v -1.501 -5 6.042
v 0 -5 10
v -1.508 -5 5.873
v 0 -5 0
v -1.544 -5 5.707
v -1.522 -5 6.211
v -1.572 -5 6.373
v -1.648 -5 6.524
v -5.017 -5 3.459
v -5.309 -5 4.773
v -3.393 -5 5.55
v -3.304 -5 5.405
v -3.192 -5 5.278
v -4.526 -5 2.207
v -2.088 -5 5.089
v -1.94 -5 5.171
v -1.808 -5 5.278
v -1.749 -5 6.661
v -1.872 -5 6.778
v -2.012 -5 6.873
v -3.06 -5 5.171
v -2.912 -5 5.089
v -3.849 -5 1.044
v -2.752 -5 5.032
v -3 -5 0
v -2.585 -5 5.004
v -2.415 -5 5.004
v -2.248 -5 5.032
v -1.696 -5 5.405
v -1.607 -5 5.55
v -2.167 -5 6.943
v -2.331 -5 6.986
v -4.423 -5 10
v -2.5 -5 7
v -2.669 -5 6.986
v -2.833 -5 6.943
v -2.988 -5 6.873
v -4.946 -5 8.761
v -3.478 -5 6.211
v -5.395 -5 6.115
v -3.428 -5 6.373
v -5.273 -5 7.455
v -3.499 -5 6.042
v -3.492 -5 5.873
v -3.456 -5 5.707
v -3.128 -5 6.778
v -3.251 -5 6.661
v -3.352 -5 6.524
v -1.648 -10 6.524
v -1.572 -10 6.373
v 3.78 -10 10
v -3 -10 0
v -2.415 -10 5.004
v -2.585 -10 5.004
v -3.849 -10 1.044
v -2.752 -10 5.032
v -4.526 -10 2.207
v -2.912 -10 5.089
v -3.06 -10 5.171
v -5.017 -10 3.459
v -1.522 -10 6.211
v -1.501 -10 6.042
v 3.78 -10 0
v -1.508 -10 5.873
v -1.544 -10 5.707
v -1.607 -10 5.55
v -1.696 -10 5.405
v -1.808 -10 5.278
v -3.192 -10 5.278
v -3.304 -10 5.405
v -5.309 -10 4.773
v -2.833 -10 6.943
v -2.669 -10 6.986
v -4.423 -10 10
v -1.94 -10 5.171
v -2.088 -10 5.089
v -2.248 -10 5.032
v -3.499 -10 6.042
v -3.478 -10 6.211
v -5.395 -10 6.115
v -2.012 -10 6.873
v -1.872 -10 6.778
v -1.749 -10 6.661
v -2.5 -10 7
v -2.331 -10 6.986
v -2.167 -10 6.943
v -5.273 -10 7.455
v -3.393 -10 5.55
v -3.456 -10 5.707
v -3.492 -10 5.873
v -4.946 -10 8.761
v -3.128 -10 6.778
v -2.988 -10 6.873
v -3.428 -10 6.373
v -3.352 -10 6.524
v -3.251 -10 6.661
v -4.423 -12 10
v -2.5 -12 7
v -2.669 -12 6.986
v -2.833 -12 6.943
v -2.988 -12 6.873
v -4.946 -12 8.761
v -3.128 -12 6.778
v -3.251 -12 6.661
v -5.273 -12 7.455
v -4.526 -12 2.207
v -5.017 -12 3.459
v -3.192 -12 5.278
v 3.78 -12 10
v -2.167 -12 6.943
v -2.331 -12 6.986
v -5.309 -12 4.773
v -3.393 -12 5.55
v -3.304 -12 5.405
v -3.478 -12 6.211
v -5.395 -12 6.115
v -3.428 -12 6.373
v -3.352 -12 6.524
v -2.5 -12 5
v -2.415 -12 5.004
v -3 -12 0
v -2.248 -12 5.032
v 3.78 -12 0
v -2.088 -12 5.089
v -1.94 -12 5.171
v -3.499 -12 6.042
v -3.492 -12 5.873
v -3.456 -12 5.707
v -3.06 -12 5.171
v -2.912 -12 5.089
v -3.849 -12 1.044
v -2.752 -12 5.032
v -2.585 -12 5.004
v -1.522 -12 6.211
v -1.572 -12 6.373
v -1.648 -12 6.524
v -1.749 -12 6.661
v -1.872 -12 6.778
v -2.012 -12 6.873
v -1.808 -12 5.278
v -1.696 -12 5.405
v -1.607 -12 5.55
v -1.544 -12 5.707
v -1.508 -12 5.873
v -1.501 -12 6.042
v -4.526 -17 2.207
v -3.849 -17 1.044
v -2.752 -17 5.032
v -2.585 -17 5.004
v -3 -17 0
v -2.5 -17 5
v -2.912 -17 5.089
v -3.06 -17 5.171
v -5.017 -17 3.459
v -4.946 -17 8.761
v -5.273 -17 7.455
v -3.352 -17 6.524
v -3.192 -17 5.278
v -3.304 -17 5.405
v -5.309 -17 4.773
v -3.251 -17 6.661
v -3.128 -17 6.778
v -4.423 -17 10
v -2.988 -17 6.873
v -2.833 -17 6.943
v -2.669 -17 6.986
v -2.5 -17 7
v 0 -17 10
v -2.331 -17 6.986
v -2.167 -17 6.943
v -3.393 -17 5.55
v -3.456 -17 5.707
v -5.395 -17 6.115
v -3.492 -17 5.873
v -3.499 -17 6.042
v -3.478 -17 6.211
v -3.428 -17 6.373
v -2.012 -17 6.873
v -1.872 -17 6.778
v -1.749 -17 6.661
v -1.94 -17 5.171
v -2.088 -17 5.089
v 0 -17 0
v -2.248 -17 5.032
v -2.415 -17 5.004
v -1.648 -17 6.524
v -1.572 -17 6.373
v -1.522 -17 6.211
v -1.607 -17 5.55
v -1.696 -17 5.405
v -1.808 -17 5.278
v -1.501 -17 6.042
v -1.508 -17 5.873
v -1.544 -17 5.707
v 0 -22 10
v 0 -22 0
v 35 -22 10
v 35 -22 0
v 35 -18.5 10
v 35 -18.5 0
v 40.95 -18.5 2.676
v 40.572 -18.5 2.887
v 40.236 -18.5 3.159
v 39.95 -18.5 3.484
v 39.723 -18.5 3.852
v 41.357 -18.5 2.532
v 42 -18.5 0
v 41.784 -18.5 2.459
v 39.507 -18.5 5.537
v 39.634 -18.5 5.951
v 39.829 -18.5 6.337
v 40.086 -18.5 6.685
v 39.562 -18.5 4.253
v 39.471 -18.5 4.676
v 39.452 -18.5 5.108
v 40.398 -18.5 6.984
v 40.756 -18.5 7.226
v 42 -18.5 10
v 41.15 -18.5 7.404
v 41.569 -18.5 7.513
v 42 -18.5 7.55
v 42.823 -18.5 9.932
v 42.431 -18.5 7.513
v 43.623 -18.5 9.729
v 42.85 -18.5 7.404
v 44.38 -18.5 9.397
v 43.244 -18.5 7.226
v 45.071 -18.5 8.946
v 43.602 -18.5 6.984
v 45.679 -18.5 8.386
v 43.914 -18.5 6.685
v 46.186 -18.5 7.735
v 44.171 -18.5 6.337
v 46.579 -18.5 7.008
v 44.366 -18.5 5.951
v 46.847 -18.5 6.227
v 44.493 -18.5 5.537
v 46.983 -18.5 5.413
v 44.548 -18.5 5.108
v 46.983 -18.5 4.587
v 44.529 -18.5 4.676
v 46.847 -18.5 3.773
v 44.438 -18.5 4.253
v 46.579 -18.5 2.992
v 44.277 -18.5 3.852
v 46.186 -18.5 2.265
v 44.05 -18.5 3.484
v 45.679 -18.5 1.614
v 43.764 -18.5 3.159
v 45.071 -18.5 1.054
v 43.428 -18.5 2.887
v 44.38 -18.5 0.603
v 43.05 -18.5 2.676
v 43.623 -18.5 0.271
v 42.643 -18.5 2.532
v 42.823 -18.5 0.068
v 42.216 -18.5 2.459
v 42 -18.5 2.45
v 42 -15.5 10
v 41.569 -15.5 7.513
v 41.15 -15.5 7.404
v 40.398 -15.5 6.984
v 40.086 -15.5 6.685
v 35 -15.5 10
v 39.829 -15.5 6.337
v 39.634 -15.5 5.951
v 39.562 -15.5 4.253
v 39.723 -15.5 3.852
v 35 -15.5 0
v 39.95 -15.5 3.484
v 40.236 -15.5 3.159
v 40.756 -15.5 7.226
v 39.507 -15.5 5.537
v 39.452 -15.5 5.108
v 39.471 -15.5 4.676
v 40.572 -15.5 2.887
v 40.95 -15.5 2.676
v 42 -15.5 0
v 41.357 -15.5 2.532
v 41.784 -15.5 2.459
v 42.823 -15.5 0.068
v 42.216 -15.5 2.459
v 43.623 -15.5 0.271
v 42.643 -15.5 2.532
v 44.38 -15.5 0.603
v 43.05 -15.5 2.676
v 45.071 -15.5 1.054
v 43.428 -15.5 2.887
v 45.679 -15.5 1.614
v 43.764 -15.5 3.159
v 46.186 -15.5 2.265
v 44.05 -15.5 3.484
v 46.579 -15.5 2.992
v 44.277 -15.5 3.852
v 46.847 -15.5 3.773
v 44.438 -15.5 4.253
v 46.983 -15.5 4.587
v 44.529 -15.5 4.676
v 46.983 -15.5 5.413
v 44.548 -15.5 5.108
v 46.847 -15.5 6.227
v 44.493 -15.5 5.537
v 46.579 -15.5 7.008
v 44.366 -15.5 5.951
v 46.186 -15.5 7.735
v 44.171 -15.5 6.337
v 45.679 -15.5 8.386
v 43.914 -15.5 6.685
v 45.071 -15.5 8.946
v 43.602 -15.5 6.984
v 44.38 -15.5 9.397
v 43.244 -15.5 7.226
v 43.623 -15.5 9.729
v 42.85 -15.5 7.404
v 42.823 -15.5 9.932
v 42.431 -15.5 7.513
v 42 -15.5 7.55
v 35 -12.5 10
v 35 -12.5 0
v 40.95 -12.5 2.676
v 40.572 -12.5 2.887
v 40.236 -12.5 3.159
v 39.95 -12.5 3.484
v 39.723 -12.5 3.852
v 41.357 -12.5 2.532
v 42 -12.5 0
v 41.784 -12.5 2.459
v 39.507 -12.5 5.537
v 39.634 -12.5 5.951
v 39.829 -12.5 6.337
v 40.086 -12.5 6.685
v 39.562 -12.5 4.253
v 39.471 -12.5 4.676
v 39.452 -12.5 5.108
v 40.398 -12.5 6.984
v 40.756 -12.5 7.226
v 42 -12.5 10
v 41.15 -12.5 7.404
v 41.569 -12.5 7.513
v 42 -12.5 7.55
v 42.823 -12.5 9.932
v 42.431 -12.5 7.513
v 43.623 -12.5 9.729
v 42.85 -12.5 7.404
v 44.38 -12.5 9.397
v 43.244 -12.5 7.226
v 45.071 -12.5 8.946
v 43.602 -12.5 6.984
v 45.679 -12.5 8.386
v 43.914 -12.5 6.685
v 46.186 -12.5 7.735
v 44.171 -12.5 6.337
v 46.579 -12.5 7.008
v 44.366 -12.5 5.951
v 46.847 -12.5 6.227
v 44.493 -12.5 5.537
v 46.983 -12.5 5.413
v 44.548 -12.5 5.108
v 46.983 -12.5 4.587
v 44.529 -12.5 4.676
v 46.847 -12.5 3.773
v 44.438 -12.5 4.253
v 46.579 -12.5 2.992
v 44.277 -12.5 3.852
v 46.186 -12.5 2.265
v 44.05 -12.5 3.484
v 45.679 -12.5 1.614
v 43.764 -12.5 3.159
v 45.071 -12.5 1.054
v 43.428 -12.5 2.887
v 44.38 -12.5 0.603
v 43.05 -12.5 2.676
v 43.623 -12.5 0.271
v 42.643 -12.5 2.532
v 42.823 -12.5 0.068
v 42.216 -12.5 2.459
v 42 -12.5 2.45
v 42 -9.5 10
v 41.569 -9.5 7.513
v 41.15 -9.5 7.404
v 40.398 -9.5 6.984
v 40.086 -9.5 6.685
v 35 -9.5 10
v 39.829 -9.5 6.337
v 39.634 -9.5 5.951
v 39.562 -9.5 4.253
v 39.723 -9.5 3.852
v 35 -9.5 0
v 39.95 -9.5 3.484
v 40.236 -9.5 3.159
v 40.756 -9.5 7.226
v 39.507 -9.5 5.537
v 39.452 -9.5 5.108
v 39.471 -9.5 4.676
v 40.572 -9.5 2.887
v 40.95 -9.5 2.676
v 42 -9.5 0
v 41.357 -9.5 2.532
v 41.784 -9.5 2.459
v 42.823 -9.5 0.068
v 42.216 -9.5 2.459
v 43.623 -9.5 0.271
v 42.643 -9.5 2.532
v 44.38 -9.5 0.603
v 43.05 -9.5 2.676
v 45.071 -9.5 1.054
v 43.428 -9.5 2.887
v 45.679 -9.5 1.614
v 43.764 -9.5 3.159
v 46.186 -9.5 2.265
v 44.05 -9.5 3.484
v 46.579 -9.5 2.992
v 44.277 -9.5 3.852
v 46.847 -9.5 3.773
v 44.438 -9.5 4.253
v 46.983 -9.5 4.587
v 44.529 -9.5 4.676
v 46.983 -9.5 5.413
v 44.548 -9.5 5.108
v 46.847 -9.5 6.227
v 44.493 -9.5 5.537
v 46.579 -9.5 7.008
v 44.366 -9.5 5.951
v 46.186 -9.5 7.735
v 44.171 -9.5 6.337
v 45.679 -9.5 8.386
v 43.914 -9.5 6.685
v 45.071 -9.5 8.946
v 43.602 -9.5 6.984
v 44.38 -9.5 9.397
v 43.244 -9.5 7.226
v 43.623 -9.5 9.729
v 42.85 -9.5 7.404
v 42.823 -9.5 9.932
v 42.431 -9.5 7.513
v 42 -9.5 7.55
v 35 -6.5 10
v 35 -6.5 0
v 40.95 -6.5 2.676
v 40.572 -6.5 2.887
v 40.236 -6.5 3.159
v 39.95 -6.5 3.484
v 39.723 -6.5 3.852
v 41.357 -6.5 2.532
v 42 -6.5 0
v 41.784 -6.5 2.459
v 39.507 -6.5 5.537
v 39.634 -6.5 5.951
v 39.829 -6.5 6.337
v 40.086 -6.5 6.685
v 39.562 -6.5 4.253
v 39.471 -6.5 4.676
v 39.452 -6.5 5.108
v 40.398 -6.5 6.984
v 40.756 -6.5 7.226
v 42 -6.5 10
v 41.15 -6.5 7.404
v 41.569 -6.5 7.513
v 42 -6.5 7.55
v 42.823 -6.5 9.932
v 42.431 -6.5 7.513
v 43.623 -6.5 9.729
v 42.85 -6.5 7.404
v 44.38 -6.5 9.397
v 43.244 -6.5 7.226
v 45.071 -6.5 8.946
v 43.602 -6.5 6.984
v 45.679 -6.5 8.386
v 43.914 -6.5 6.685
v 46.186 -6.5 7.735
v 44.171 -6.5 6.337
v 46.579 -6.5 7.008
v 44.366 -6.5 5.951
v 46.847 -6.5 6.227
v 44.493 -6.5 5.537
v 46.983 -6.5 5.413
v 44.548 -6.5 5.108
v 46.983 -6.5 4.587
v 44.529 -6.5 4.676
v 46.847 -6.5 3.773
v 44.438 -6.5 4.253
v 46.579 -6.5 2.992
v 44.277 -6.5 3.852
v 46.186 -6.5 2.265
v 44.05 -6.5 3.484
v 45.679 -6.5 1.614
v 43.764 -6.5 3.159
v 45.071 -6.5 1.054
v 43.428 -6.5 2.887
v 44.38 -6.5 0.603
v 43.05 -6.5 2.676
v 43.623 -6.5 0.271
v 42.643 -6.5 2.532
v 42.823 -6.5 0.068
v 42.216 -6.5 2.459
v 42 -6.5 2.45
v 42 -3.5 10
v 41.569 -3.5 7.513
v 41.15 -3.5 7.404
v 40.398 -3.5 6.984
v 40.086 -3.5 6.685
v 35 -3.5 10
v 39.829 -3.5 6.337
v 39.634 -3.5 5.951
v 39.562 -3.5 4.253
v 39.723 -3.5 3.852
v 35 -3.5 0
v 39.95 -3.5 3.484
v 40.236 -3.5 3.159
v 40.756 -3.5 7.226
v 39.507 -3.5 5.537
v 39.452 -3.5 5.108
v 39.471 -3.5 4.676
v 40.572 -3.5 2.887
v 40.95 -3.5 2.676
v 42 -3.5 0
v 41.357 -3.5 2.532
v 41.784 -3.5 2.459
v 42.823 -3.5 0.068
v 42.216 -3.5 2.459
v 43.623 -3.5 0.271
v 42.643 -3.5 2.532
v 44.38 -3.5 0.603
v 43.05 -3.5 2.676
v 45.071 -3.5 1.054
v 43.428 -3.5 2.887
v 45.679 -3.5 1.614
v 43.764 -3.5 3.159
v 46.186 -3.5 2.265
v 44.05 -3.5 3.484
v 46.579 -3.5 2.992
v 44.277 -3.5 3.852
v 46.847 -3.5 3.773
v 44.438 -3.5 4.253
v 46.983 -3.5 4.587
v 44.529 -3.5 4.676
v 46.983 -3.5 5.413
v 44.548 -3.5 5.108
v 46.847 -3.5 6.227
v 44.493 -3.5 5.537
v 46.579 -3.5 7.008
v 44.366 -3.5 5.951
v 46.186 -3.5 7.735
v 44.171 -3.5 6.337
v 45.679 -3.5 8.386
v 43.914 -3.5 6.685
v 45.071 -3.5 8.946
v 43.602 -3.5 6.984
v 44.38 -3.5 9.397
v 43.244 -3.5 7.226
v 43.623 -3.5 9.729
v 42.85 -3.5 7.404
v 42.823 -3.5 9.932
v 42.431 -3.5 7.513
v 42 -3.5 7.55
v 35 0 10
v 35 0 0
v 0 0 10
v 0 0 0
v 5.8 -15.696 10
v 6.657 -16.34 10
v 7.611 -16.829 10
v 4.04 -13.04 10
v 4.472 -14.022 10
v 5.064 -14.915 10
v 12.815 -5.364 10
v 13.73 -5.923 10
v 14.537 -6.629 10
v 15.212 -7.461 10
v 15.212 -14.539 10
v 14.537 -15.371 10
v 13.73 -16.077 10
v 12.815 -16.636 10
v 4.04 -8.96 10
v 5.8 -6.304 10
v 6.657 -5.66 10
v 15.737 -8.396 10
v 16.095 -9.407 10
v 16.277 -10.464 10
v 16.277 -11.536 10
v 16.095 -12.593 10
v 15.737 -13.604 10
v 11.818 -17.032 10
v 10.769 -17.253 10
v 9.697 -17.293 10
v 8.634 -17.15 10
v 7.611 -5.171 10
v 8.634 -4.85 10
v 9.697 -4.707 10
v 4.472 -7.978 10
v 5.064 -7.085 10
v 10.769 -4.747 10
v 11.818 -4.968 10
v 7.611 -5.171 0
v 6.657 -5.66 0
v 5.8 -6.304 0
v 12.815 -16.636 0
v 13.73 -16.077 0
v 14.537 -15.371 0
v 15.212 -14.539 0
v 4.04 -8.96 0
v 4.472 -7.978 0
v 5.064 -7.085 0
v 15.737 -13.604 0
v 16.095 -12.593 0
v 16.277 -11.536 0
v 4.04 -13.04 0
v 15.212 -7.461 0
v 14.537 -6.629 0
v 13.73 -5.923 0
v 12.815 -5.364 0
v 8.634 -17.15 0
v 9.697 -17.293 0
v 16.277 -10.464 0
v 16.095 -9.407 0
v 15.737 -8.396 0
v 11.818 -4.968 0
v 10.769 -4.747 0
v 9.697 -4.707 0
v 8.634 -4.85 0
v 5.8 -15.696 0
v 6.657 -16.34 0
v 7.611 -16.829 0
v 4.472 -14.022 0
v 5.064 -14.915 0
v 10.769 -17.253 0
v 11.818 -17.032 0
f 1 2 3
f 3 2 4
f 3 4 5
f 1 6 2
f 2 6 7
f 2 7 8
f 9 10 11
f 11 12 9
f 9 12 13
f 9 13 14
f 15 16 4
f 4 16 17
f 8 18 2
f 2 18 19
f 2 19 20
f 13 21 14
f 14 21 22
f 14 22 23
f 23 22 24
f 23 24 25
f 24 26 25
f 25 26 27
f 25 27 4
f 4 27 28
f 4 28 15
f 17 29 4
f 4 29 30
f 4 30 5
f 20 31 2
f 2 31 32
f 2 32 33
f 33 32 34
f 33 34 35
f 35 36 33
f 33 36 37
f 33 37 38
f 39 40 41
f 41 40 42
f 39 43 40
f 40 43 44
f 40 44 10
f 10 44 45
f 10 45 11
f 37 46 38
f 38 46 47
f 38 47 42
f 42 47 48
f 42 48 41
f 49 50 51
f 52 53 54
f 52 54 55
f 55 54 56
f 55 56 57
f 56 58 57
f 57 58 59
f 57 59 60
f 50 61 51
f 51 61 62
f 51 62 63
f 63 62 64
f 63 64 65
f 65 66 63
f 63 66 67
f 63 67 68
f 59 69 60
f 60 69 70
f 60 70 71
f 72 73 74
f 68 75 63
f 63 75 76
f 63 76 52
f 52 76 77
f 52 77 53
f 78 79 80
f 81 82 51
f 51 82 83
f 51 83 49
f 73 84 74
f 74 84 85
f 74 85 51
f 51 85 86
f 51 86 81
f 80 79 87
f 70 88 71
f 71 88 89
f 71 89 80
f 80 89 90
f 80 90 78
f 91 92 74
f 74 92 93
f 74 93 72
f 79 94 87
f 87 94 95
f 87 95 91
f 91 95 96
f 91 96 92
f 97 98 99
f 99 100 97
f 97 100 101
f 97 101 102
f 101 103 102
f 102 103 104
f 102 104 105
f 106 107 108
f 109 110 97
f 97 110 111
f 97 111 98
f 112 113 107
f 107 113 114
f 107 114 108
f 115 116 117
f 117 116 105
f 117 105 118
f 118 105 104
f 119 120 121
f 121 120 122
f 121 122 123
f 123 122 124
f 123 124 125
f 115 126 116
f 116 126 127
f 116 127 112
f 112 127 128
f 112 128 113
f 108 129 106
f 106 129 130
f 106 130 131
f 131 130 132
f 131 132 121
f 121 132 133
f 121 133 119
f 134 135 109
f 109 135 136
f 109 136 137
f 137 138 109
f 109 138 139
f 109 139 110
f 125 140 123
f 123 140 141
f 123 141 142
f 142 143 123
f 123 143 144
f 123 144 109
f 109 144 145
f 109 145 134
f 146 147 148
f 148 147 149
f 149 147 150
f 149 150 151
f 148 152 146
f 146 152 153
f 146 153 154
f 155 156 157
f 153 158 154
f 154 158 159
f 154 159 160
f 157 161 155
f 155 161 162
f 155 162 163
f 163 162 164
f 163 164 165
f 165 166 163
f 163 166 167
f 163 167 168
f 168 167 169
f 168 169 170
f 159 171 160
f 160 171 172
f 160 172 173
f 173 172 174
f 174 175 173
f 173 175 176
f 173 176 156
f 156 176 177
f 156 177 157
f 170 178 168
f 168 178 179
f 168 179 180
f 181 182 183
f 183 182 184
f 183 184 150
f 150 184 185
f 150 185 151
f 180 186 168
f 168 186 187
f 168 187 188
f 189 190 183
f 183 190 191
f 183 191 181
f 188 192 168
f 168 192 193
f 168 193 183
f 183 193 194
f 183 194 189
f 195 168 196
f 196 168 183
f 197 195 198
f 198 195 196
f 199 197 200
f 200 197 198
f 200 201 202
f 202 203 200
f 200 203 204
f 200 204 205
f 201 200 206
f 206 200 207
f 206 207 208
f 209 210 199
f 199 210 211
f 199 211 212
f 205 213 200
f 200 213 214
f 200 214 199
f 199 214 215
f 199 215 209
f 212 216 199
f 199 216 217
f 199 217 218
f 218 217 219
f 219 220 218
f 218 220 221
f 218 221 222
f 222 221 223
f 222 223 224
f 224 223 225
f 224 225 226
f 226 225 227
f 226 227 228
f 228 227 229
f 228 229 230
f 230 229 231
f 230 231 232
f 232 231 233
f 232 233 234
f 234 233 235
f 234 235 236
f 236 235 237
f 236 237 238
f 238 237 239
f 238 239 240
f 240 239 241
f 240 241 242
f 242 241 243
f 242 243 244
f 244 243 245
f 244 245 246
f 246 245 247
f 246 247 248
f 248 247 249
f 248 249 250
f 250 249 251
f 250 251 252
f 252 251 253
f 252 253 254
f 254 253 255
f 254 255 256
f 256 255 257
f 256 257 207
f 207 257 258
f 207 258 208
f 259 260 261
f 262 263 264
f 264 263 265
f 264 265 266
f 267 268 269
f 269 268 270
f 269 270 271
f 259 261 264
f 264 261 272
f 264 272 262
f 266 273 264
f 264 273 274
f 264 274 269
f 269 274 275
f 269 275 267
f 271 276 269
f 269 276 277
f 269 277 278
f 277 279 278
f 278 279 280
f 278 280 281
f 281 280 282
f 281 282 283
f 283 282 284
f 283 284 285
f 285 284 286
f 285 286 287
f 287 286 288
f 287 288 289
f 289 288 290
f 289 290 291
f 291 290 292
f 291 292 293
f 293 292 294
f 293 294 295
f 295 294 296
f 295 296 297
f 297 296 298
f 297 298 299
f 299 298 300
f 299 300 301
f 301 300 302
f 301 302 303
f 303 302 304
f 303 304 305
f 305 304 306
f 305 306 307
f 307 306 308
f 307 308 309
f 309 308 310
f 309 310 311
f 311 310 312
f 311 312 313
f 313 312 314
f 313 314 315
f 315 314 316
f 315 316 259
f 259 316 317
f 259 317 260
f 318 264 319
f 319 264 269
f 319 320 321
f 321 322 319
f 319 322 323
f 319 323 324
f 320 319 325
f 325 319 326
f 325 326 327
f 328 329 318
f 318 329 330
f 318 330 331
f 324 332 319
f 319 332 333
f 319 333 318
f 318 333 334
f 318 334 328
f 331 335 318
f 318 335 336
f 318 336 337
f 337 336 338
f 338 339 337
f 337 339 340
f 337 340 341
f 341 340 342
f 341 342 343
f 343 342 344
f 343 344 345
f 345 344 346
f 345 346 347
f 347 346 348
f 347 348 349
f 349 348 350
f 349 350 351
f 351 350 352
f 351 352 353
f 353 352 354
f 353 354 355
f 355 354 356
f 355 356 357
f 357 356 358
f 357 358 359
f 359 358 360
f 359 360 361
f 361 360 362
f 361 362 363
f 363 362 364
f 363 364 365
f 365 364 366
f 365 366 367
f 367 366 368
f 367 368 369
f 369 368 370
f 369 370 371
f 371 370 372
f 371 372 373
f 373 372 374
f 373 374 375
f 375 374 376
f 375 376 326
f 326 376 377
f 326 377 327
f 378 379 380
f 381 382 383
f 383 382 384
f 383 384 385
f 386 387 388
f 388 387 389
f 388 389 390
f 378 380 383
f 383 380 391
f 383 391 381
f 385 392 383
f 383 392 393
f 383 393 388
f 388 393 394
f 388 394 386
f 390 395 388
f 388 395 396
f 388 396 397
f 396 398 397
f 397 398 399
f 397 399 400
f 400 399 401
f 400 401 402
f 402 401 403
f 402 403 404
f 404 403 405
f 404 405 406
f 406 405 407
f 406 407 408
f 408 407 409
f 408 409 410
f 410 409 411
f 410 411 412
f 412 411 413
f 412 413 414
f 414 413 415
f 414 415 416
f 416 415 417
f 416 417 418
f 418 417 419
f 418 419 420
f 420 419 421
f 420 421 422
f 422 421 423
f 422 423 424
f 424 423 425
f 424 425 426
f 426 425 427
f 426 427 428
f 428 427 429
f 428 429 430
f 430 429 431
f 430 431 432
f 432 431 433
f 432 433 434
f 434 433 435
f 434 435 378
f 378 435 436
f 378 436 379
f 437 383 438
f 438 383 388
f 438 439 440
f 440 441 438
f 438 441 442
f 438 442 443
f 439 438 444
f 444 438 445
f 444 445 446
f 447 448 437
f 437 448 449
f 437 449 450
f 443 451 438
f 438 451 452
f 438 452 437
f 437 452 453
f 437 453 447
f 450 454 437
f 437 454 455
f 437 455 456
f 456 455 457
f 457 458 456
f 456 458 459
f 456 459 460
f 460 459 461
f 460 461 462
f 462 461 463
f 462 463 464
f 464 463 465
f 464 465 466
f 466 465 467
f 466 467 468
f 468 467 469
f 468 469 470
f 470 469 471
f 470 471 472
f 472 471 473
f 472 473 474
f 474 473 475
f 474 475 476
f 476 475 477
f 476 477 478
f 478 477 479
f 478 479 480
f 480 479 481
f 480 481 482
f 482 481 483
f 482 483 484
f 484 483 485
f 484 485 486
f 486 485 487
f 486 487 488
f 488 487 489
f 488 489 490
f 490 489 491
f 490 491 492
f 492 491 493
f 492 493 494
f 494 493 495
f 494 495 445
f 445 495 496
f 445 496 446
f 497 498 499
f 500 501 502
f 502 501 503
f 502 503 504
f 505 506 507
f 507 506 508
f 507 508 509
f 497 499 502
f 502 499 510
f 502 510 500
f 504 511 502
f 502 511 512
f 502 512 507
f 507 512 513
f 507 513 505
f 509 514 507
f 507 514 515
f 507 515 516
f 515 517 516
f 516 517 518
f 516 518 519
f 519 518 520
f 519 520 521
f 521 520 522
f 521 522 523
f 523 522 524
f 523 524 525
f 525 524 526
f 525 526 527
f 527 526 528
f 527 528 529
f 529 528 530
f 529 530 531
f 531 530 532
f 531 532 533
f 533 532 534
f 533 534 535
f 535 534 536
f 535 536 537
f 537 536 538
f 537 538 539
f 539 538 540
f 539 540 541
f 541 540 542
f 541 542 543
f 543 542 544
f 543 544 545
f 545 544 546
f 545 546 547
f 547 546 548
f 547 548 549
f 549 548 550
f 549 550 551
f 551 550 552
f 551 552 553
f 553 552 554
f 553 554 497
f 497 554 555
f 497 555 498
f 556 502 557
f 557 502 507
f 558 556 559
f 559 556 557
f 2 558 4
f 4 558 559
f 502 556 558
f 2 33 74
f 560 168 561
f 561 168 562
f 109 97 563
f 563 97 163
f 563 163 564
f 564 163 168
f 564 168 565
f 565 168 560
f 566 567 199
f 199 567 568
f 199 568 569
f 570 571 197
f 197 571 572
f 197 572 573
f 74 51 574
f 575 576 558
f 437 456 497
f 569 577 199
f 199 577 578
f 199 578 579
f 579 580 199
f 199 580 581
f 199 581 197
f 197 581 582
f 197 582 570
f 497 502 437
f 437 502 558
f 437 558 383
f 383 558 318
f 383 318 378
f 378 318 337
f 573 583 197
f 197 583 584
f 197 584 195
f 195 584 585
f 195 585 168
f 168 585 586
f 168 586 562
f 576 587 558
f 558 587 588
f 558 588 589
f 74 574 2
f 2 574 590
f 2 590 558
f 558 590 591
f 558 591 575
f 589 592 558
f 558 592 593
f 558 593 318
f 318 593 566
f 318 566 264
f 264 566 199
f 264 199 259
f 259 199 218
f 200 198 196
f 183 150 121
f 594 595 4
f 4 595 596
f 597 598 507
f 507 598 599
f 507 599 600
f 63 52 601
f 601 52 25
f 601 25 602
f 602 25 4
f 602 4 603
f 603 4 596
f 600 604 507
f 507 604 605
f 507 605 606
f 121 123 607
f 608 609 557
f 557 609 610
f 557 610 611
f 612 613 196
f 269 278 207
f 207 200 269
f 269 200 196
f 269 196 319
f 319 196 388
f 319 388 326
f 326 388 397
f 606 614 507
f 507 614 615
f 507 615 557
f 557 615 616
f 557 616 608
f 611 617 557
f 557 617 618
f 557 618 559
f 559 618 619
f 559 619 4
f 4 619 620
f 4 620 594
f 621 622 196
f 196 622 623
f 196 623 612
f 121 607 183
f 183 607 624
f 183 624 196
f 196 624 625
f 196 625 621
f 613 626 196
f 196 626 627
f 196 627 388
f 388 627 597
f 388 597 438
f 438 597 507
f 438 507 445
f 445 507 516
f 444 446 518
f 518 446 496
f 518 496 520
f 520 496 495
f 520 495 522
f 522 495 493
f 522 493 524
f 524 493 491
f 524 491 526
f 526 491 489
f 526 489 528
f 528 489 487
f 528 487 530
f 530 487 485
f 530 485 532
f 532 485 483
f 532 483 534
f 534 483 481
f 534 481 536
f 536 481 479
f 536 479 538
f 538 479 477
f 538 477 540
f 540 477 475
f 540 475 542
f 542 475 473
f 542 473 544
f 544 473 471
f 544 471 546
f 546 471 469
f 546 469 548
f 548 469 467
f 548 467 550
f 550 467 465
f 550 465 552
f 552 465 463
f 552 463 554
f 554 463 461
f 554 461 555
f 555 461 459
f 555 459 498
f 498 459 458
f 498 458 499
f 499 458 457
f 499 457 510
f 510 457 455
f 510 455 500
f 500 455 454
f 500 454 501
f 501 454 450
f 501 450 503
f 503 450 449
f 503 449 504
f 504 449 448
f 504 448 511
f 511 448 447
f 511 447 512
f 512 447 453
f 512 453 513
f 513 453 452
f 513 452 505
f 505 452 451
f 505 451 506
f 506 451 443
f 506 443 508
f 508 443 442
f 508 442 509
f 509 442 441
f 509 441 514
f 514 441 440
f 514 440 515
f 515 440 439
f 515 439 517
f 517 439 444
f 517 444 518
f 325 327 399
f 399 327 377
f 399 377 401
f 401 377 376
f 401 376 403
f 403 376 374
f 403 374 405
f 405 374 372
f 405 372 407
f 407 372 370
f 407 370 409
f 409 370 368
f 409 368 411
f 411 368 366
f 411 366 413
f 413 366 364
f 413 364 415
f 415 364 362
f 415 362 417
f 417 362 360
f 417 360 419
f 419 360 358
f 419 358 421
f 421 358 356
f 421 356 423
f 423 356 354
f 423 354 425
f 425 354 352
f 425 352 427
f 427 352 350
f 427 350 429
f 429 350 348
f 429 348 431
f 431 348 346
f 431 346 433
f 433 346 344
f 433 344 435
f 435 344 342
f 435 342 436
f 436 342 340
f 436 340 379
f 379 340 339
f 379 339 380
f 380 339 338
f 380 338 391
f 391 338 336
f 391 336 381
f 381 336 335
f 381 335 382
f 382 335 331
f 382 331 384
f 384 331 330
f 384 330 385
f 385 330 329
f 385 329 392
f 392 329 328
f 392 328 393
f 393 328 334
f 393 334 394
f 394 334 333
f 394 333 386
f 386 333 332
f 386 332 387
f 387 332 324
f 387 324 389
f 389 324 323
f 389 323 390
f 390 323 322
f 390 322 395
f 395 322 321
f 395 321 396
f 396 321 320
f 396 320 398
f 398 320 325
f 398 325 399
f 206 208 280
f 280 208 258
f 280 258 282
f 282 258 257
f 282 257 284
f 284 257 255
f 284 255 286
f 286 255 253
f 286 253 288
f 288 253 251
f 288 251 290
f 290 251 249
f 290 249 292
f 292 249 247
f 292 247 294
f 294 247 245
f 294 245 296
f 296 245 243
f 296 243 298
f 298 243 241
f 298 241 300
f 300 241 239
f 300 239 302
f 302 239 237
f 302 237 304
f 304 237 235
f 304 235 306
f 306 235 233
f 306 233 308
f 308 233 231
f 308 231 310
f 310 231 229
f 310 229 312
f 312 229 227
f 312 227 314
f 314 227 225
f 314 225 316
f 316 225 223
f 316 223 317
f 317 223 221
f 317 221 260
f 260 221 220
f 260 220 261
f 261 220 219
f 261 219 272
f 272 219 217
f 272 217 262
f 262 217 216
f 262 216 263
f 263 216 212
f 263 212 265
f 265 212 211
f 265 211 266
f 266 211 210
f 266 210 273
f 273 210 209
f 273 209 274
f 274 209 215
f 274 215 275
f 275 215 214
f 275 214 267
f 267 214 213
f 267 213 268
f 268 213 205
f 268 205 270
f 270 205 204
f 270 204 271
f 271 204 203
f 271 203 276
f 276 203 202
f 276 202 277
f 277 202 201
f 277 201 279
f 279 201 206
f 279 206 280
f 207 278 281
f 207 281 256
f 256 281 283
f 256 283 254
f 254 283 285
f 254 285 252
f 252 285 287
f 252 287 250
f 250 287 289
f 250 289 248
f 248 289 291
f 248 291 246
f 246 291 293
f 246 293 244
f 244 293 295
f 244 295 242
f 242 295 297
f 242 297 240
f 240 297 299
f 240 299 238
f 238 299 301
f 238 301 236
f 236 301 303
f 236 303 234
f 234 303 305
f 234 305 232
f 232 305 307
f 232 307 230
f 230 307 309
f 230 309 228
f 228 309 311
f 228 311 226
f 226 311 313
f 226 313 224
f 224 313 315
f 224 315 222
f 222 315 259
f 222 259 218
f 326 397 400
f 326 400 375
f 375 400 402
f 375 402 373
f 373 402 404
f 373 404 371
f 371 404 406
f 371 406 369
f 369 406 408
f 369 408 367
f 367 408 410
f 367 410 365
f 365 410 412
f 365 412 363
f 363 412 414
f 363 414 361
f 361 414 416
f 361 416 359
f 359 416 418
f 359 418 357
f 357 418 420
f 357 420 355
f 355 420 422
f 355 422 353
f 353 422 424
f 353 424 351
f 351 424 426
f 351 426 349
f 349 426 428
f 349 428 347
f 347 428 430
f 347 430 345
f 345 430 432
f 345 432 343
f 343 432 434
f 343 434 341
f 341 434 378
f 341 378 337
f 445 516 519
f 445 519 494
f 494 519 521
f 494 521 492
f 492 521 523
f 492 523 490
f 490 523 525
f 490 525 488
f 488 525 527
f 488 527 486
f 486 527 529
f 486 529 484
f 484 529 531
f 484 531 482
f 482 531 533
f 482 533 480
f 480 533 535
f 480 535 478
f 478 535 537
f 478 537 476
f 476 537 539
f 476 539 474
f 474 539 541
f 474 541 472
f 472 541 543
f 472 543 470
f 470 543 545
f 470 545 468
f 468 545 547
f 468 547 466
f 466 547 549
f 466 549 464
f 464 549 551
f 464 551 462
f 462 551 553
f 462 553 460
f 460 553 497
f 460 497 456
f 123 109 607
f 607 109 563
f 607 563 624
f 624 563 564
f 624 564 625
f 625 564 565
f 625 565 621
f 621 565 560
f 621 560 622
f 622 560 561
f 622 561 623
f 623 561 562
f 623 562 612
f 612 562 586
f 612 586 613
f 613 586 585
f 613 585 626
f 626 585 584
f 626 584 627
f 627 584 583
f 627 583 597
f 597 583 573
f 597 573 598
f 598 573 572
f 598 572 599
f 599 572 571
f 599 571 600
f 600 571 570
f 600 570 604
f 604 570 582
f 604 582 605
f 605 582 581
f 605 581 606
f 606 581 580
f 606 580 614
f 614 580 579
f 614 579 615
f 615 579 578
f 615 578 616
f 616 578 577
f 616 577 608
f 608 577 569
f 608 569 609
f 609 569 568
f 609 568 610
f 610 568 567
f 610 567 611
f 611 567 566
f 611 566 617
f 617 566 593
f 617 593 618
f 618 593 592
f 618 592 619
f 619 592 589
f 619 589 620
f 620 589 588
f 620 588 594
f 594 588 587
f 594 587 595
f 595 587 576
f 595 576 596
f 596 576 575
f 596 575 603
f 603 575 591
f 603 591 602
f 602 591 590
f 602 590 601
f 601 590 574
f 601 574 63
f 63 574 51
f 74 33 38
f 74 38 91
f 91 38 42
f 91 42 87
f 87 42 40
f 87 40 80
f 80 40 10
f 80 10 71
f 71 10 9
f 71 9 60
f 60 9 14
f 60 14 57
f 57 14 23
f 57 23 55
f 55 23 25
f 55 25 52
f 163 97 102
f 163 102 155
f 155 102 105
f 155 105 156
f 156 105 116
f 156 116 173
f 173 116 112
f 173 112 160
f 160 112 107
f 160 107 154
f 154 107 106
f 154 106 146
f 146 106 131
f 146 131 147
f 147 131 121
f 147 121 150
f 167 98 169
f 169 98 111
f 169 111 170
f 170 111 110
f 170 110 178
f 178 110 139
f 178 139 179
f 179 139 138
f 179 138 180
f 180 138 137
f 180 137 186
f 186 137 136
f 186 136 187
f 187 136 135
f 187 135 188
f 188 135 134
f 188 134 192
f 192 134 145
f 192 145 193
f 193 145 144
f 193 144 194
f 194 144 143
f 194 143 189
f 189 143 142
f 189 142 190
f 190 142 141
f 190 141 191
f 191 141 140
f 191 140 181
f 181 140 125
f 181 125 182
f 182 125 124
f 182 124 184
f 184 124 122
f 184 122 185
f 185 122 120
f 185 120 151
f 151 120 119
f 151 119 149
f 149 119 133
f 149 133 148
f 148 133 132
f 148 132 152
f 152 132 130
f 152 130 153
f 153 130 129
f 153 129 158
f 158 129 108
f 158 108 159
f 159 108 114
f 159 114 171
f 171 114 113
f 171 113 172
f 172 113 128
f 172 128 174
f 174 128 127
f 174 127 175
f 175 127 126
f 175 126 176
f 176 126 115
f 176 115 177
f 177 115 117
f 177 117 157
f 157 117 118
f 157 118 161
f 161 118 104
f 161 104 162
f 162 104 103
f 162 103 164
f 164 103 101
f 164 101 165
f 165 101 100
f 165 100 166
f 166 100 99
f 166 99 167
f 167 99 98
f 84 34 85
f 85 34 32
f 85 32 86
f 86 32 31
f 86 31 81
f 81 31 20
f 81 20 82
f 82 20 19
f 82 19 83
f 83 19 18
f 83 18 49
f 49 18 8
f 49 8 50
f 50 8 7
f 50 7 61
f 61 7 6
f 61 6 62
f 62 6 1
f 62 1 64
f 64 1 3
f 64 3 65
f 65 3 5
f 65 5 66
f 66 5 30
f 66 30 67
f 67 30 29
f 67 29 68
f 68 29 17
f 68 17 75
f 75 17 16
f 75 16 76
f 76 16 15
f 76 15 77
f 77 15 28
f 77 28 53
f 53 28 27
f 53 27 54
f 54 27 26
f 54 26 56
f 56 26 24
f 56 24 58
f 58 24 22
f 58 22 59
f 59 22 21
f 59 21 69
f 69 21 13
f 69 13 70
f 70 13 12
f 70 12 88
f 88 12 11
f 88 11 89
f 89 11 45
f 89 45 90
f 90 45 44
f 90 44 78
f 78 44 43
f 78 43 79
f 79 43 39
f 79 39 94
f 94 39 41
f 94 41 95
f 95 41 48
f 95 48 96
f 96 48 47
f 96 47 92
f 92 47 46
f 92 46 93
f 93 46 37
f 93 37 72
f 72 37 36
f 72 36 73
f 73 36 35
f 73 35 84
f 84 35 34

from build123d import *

# Parameters (mm, degrees)
EXTRUDE_1_DEPTH     = 10
SKETCH_2_R          = 2.55
CUT_EXTRUDE_1_DEPTH = 19
CUT_EXTRUDE_2_DEPTH = 19
SKETCH_5_W          = 10
SKETCH_5_H          = 2
CUT_EXTRUDE_4_DEPTH = 19
SKETCH_6_R          = 6.3
CUT_EXTRUDE_5_DEPTH = 19
CUT_EXTRUDE_6_DEPTH = 19
SKETCH_8_R          = 1
CUT_EXTRUDE_7_DEPTH = 18


with BuildPart() as part:
    # 草图1 → 凸台-拉伸1 (new body)
    with BuildSketch(Plane.XY):
        Polygon((0, 0), (35, 0), (35, -3.5), (47, -3.5), (47, -6.5), (35, -6.5), (35, -9.5), (47, -9.5), (47, -12.5), (35, -12.5), (35, -15.5), (47, -15.5), (47, -18.5), (35, -18.5), (35, -22), (0, -22), (0, -17), (-10, -17), (-10, -12), (0, -12), (0, -10), (-10, -10), (-10, -5), (0, -5), align=None)
    extrude(amount=EXTRUDE_1_DEPTH)

    # 草图2 → 切除-拉伸1 (cut)
    with BuildSketch(Plane(origin=(0, -3.5, 0), x_dir=(1, 0, 0), z_dir=(0, 1, 0))):
        with Locations((42, -5)):
            Circle(SKETCH_2_R)
    extrude(amount=-CUT_EXTRUDE_1_DEPTH, mode=Mode.SUBTRACT)

    # 草图3 → 切除-拉伸2 (cut)
    with BuildSketch(Plane(origin=(0, -3.5, 0), x_dir=(1, 0, 0), z_dir=(0, 1, 0))):
        with BuildLine():
            Line((42, 0), (35, 0))
            Line((35, 0), (35, 1.362905895))
            Line((35, 1.362905895), (53.328864927, 1.362905895))
            Line((53.328864927, 1.362905895), (53.328864927, -13.813237877))
            Line((53.328864927, -13.813237877), (35, -13.813237877))
            Line((35, -13.813237877), (35, -10))
            Line((35, -10), (42, -10))
            ThreePointArc((42, -10), (47, -5), (42, 0))
        make_face()
    extrude(amount=-CUT_EXTRUDE_2_DEPTH, mode=Mode.SUBTRACT)

    # 草图5 → 切除-拉伸4 (cut)
    with BuildSketch(Plane.XY.offset(10)):
        with Locations((5, -11)):
            Rectangle(SKETCH_5_W, SKETCH_5_H)
    extrude(amount=-CUT_EXTRUDE_4_DEPTH, mode=Mode.SUBTRACT)

    # 草图6 → 切除-拉伸5 (cut)
    with BuildSketch(Plane.XY.offset(10)):
        with Locations((10, -11)):
            Circle(SKETCH_6_R)
    extrude(amount=-CUT_EXTRUDE_5_DEPTH, mode=Mode.SUBTRACT)

    # 草图7 → 切除-拉伸6 (cut)
    with BuildSketch(Plane(origin=(0, -5, 0), x_dir=(1, 0, 0), z_dir=(0, 1, 0))):
        with BuildLine():
            Line((-4.422847497, -10), (-4.422847497, -16.245470045))
            Line((-4.422847497, -16.245470045), (-15.241663488, -16.245470045))
            Line((-15.241663488, -16.245470045), (-15.241663488, 3.326156632))
            Line((-15.241663488, 3.326156632), (-3, 3.326156632))
            Line((-3, 3.326156632), (-3, 0))
            ThreePointArc((-3, 0), (-5.308519262, -4.772757665), (-4.422847497, -10))
        make_face()
    extrude(amount=-CUT_EXTRUDE_6_DEPTH, mode=Mode.SUBTRACT)

    # 草图8 → 切除-拉伸7 (cut)
    with BuildSketch(Plane(origin=(0, -5, 0), x_dir=(1, 0, 0), z_dir=(0, 1, 0))):
        with Locations((-2.5, -6)):
            Circle(SKETCH_8_R)
    extrude(amount=-CUT_EXTRUDE_7_DEPTH, mode=Mode.SUBTRACT)


solid = part.part
